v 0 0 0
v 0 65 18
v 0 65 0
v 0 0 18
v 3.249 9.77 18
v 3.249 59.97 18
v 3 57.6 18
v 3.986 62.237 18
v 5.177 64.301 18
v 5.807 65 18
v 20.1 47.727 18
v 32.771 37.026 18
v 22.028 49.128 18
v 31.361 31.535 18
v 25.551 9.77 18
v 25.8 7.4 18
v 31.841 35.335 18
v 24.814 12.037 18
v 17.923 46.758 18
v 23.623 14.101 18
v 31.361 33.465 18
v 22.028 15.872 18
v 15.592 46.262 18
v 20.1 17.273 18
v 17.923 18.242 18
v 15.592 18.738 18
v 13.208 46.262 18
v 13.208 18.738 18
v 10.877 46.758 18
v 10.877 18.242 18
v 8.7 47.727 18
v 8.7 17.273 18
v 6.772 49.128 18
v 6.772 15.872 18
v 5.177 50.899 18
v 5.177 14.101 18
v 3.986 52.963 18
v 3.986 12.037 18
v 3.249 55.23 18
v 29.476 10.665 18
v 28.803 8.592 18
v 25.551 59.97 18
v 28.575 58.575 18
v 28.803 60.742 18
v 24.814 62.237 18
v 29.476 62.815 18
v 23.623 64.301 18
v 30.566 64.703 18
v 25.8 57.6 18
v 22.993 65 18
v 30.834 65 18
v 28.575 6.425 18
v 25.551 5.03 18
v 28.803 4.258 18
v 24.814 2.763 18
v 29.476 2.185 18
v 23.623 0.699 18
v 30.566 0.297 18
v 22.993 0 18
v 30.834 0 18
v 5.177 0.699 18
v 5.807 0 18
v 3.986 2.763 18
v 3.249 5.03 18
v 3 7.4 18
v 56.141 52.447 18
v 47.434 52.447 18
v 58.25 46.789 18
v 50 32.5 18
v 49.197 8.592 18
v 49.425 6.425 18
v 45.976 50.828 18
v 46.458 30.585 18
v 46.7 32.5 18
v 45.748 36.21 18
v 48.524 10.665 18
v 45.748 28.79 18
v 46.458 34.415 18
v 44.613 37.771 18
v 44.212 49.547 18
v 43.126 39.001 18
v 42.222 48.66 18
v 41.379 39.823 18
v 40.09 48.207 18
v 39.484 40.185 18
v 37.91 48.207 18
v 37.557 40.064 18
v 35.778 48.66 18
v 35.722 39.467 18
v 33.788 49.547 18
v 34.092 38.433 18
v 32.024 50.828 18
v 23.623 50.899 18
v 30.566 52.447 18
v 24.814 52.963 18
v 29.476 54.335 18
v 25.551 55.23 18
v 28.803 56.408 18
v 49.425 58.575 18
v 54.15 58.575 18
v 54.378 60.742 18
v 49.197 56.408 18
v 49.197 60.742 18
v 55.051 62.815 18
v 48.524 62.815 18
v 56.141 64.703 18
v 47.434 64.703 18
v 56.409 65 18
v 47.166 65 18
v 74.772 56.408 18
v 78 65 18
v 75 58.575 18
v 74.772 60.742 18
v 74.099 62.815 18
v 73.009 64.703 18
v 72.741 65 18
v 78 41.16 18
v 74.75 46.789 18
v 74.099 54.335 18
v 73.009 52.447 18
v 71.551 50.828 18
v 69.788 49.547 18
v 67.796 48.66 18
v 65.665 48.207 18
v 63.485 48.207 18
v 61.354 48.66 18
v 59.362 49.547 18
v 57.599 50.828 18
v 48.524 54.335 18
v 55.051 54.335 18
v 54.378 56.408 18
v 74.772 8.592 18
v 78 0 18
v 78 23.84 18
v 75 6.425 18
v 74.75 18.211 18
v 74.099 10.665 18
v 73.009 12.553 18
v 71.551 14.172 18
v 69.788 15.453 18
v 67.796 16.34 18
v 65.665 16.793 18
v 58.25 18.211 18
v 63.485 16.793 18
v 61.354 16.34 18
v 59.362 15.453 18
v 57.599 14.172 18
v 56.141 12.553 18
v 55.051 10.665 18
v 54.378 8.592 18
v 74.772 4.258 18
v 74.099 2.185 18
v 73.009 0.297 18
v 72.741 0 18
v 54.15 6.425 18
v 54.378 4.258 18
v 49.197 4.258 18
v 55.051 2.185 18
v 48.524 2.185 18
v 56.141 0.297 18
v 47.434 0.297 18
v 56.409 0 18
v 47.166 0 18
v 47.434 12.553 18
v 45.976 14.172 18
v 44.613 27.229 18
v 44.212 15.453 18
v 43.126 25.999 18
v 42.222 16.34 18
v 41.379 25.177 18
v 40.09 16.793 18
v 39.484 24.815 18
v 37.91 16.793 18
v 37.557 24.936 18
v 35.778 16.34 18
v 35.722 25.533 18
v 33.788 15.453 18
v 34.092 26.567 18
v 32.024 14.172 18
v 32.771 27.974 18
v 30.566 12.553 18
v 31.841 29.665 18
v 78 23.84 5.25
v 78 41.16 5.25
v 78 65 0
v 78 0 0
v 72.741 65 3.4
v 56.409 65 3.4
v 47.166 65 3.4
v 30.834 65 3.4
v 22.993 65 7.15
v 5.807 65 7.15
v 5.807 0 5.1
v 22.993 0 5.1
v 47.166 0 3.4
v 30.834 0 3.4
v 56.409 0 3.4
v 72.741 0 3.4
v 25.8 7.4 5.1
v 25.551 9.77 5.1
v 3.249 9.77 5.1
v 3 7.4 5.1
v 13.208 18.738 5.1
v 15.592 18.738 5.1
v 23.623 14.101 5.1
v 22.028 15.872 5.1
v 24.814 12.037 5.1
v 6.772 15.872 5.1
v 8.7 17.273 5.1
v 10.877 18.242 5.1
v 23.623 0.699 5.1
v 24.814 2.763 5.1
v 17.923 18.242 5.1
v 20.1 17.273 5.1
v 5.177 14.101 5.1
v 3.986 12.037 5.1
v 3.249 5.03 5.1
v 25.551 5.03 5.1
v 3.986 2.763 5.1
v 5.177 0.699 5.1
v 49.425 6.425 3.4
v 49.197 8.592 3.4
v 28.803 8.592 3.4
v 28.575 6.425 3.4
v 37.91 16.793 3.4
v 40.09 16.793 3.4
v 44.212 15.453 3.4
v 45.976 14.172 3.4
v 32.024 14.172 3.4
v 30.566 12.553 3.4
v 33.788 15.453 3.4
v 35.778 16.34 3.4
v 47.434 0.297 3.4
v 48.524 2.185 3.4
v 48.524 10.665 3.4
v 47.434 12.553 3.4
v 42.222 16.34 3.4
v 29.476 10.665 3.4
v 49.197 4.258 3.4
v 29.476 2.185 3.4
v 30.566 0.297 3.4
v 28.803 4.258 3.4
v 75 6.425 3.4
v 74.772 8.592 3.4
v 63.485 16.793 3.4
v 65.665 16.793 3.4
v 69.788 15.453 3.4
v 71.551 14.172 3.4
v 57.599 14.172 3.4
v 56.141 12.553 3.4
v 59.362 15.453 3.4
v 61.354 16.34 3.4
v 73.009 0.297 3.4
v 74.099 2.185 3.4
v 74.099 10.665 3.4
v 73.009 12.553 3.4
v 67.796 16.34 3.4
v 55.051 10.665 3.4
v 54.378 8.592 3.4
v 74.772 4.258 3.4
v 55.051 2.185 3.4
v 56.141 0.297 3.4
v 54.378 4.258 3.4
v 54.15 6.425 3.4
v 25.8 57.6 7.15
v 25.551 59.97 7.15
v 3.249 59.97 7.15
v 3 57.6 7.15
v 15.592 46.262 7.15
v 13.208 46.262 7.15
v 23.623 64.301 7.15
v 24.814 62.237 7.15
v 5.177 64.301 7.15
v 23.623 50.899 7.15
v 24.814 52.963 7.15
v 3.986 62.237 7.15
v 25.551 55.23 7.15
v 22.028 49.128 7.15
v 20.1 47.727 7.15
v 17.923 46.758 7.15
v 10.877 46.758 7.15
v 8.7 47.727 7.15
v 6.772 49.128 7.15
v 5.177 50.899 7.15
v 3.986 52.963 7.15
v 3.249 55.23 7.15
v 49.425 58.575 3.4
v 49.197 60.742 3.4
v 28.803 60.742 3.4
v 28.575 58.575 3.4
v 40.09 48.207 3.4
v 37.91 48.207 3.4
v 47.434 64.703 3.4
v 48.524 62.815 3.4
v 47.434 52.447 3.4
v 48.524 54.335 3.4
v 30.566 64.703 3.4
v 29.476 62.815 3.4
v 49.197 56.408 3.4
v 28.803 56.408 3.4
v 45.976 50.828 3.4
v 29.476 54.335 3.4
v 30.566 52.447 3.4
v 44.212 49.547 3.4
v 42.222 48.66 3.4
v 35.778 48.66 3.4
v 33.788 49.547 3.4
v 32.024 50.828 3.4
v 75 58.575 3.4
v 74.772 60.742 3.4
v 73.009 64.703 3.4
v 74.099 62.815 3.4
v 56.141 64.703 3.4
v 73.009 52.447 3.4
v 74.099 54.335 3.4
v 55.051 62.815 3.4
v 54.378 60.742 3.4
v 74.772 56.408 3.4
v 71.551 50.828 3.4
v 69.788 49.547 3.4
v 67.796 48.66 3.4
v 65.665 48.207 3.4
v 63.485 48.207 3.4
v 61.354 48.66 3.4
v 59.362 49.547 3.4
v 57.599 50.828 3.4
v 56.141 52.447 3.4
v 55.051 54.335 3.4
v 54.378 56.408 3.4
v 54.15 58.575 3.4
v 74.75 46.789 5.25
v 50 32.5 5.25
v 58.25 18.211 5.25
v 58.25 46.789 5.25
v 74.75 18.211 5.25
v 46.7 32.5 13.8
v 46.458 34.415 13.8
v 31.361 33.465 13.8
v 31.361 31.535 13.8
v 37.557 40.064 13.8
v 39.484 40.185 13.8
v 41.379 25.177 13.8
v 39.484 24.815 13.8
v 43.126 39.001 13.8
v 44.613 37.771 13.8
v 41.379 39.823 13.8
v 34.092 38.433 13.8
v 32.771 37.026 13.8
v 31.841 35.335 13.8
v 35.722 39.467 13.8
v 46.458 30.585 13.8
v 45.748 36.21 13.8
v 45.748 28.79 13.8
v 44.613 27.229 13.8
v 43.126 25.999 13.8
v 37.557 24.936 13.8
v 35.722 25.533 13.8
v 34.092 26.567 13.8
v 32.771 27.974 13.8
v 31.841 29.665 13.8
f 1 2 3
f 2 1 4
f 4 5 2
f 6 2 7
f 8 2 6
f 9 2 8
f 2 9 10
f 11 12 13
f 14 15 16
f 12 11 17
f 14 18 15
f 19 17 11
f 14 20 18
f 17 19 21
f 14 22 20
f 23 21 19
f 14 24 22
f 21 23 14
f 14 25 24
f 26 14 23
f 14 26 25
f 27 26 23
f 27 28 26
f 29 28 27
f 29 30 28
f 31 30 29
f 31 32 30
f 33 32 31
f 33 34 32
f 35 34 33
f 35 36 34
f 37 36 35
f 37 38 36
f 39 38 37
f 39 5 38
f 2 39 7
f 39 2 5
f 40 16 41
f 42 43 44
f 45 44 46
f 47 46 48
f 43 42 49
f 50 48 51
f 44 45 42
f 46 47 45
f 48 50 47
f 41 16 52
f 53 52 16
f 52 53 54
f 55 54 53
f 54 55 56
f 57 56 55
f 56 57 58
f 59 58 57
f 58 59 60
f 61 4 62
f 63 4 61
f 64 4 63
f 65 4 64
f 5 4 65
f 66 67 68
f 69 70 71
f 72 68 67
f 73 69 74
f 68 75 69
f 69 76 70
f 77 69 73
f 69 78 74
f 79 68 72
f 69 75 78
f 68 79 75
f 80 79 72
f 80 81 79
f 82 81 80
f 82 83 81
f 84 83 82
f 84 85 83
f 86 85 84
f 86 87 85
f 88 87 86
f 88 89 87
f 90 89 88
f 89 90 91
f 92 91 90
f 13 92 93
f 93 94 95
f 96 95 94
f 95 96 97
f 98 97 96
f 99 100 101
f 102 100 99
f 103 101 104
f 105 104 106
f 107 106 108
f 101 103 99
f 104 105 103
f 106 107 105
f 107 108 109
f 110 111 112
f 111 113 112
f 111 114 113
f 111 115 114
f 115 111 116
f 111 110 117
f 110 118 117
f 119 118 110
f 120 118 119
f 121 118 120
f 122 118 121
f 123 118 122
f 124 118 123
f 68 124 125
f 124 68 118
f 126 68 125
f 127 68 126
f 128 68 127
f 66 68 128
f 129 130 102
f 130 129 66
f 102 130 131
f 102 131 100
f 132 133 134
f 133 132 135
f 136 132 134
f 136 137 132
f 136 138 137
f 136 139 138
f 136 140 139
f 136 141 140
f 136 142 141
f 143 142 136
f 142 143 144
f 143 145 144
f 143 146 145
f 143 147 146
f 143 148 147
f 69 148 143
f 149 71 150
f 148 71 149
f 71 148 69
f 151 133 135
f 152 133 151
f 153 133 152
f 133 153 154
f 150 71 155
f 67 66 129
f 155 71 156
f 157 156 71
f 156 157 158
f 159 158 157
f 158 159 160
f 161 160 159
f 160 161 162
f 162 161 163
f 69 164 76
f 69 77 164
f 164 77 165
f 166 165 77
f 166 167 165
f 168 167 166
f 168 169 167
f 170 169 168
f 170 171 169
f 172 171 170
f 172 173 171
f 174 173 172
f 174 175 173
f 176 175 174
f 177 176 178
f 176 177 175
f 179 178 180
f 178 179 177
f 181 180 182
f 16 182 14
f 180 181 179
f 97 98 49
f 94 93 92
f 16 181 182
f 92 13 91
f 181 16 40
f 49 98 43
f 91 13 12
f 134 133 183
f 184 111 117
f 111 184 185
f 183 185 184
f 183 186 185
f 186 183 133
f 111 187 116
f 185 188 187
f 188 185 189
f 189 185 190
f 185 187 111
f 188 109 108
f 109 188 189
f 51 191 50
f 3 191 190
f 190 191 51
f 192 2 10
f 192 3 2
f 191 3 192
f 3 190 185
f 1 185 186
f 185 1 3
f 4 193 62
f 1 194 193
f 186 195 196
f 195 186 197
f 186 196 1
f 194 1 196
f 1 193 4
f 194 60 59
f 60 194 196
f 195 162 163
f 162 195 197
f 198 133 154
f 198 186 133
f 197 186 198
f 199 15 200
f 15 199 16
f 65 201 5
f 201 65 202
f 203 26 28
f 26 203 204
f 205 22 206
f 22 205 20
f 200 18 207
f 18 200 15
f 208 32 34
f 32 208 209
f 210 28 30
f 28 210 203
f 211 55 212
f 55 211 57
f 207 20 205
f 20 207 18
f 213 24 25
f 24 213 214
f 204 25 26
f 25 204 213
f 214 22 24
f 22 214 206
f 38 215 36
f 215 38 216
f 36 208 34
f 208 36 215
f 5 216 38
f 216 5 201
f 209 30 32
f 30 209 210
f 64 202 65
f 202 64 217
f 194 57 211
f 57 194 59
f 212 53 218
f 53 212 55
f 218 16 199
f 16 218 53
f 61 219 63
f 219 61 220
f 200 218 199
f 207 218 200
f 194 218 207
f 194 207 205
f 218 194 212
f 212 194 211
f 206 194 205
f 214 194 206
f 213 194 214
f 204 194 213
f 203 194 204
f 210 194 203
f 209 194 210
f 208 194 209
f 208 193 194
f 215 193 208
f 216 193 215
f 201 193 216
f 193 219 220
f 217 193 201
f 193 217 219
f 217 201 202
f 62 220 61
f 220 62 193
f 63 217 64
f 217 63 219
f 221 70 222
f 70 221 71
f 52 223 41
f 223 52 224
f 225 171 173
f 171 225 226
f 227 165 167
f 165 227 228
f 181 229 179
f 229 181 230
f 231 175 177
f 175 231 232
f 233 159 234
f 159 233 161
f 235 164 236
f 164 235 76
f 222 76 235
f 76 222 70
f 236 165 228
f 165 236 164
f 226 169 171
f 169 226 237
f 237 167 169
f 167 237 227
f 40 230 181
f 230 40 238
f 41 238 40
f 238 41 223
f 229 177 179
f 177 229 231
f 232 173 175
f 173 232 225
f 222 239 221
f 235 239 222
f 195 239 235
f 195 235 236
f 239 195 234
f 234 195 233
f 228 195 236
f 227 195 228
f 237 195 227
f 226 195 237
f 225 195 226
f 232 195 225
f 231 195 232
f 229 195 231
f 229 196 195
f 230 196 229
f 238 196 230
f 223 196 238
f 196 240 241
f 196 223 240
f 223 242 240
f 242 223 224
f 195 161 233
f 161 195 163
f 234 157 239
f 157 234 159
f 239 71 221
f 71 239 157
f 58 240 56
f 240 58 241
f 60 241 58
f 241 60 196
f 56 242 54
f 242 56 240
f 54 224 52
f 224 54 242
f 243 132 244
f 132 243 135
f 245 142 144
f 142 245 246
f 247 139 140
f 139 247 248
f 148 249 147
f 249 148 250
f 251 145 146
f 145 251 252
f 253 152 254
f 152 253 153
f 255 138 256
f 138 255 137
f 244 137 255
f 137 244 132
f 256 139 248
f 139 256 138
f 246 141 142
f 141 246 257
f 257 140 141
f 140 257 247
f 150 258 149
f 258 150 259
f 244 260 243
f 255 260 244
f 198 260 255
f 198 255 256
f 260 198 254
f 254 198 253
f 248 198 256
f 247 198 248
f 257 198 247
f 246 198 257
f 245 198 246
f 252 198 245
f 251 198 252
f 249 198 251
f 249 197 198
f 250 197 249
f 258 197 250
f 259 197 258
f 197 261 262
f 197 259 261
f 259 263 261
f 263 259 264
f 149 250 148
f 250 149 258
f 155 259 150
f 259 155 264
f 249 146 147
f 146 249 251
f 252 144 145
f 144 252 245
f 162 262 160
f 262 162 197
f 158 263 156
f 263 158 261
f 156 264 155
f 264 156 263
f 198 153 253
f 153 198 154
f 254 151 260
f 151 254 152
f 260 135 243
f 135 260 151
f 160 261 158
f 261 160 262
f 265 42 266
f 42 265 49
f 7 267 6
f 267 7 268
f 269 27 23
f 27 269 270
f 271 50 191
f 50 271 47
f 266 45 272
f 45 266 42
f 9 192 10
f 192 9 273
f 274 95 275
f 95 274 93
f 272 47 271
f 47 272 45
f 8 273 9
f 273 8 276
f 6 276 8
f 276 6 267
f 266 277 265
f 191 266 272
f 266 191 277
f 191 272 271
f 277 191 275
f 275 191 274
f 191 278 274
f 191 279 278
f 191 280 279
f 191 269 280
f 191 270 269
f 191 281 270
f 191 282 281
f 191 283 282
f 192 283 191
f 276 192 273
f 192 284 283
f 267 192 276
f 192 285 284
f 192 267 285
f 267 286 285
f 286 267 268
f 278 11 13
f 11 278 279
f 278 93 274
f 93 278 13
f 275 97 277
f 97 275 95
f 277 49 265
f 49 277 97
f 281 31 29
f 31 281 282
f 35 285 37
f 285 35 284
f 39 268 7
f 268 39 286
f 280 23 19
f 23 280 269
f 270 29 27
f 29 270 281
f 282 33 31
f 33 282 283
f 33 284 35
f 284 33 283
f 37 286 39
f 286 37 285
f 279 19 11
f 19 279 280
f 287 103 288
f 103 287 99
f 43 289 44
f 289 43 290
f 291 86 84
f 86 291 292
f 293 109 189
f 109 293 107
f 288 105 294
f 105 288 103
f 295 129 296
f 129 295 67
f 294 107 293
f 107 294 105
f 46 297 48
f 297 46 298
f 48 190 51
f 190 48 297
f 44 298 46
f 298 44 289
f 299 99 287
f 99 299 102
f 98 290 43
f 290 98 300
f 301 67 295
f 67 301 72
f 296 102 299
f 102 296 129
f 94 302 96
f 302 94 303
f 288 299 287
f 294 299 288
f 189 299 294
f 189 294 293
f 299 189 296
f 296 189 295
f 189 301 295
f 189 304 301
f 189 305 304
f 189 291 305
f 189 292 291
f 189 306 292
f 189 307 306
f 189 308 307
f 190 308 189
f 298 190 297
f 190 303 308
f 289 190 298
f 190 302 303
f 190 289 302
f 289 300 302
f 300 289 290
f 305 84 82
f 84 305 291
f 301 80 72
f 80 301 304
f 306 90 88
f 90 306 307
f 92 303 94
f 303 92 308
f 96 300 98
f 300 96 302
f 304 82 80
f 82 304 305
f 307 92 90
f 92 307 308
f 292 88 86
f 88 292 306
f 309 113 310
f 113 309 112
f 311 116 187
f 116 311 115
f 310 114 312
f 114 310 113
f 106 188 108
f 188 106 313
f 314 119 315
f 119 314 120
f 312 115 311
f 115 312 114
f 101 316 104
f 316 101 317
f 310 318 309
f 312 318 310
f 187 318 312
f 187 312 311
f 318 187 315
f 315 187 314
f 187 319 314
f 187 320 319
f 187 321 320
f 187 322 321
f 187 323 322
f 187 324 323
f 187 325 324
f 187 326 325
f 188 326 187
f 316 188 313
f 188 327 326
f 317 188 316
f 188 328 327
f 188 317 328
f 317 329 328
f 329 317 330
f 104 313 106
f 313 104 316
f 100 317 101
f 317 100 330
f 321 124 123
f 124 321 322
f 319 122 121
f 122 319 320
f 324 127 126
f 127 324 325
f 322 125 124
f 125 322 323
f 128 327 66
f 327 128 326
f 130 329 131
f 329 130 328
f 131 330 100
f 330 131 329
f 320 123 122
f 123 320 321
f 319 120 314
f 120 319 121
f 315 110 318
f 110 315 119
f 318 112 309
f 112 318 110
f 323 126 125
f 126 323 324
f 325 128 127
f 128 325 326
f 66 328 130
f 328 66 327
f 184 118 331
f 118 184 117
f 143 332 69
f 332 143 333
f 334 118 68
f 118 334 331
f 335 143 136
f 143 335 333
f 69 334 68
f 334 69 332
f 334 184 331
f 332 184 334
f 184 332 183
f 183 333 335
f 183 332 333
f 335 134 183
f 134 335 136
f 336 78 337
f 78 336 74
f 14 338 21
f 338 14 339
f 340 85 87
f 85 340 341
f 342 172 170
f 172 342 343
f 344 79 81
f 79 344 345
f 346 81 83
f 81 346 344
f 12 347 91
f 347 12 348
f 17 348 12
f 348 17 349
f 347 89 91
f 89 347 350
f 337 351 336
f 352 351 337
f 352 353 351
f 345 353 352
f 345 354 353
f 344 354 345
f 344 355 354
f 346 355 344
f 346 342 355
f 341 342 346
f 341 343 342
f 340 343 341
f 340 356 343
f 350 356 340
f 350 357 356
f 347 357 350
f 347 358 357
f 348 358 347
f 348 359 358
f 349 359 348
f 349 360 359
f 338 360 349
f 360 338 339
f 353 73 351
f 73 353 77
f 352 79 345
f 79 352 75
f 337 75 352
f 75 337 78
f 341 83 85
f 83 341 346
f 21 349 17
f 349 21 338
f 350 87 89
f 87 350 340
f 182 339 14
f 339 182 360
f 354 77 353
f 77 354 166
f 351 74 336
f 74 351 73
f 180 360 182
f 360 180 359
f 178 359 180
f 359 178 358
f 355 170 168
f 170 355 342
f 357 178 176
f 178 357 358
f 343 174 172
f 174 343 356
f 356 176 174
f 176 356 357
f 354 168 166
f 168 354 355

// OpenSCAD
length = 78;
width = 65;
height = 18;

//Based on magnet size:
magnetBaseOuterDiameter = 20;
magnetBaseInnerDiameter = 15.4;
magnetHeight = 4.2;

minorSecretTokenDiameter = 20.85;
minorSecretTokenOffset = 4;
minorSecretTokenHeight = 14.6;

majorSecretTokenDiameter = 22.8;
majorSecretTokenOffset = 4;
majorSecretTokenHeightOne = 12.9;
majorSecretTokenHeightTwo = 10.85;

artifactTokenDiameter = 33;
artifactTokenOffset = 5;
artifactTokenHeight = 12.75;

spaceBetweenCircles = 3;

difference(){
    cube([length, width, height]);

        translate([majorSecretTokenDiameter/2 + spaceBetweenCircles, majorSecretTokenDiameter/2 - majorSecretTokenOffset, height - majorSecretTokenHeightOne])
        cylinder(majorSecretTokenHeightOne, d=majorSecretTokenDiameter);

    translate([length/2, minorSecretTokenDiameter/2 - minorSecretTokenOffset, height - minorSecretTokenHeight])
        cylinder(minorSecretTokenHeight, d=minorSecretTokenDiameter);
   
    
    translate([length - (minorSecretTokenDiameter/2 + spaceBetweenCircles), minorSecretTokenDiameter/2 - minorSecretTokenOffset, height - minorSecretTokenHeight])
        cylinder(minorSecretTokenHeight, d=minorSecretTokenDiameter);
    
    
    translate([majorSecretTokenDiameter/2 + spaceBetweenCircles, width - (majorSecretTokenDiameter/2 - majorSecretTokenOffset), height - majorSecretTokenHeightTwo])
        cylinder(majorSecretTokenHeightTwo, d=majorSecretTokenDiameter);
    
    translate([length/2, width - (minorSecretTokenDiameter/2 - minorSecretTokenOffset), height - minorSecretTokenHeight])
        cylinder(minorSecretTokenHeight, d=minorSecretTokenDiameter);
    
    translate([length - (minorSecretTokenDiameter/2 + spaceBetweenCircles), width - (minorSecretTokenDiameter/2 - minorSecretTokenOffset), height - minorSecretTokenHeight])
        cylinder(minorSecretTokenHeight, d=minorSecretTokenDiameter);


    translate([length - (artifactTokenDiameter/2 - artifactTokenOffset), width/2, height - artifactTokenHeight])
        cylinder(artifactTokenHeight, d=artifactTokenDiameter, $fn=6);


    translate([length/2, width/2, height - magnetHeight])
        cylinder(magnetHeight, d=magnetBaseInnerDiameter);
        

}
